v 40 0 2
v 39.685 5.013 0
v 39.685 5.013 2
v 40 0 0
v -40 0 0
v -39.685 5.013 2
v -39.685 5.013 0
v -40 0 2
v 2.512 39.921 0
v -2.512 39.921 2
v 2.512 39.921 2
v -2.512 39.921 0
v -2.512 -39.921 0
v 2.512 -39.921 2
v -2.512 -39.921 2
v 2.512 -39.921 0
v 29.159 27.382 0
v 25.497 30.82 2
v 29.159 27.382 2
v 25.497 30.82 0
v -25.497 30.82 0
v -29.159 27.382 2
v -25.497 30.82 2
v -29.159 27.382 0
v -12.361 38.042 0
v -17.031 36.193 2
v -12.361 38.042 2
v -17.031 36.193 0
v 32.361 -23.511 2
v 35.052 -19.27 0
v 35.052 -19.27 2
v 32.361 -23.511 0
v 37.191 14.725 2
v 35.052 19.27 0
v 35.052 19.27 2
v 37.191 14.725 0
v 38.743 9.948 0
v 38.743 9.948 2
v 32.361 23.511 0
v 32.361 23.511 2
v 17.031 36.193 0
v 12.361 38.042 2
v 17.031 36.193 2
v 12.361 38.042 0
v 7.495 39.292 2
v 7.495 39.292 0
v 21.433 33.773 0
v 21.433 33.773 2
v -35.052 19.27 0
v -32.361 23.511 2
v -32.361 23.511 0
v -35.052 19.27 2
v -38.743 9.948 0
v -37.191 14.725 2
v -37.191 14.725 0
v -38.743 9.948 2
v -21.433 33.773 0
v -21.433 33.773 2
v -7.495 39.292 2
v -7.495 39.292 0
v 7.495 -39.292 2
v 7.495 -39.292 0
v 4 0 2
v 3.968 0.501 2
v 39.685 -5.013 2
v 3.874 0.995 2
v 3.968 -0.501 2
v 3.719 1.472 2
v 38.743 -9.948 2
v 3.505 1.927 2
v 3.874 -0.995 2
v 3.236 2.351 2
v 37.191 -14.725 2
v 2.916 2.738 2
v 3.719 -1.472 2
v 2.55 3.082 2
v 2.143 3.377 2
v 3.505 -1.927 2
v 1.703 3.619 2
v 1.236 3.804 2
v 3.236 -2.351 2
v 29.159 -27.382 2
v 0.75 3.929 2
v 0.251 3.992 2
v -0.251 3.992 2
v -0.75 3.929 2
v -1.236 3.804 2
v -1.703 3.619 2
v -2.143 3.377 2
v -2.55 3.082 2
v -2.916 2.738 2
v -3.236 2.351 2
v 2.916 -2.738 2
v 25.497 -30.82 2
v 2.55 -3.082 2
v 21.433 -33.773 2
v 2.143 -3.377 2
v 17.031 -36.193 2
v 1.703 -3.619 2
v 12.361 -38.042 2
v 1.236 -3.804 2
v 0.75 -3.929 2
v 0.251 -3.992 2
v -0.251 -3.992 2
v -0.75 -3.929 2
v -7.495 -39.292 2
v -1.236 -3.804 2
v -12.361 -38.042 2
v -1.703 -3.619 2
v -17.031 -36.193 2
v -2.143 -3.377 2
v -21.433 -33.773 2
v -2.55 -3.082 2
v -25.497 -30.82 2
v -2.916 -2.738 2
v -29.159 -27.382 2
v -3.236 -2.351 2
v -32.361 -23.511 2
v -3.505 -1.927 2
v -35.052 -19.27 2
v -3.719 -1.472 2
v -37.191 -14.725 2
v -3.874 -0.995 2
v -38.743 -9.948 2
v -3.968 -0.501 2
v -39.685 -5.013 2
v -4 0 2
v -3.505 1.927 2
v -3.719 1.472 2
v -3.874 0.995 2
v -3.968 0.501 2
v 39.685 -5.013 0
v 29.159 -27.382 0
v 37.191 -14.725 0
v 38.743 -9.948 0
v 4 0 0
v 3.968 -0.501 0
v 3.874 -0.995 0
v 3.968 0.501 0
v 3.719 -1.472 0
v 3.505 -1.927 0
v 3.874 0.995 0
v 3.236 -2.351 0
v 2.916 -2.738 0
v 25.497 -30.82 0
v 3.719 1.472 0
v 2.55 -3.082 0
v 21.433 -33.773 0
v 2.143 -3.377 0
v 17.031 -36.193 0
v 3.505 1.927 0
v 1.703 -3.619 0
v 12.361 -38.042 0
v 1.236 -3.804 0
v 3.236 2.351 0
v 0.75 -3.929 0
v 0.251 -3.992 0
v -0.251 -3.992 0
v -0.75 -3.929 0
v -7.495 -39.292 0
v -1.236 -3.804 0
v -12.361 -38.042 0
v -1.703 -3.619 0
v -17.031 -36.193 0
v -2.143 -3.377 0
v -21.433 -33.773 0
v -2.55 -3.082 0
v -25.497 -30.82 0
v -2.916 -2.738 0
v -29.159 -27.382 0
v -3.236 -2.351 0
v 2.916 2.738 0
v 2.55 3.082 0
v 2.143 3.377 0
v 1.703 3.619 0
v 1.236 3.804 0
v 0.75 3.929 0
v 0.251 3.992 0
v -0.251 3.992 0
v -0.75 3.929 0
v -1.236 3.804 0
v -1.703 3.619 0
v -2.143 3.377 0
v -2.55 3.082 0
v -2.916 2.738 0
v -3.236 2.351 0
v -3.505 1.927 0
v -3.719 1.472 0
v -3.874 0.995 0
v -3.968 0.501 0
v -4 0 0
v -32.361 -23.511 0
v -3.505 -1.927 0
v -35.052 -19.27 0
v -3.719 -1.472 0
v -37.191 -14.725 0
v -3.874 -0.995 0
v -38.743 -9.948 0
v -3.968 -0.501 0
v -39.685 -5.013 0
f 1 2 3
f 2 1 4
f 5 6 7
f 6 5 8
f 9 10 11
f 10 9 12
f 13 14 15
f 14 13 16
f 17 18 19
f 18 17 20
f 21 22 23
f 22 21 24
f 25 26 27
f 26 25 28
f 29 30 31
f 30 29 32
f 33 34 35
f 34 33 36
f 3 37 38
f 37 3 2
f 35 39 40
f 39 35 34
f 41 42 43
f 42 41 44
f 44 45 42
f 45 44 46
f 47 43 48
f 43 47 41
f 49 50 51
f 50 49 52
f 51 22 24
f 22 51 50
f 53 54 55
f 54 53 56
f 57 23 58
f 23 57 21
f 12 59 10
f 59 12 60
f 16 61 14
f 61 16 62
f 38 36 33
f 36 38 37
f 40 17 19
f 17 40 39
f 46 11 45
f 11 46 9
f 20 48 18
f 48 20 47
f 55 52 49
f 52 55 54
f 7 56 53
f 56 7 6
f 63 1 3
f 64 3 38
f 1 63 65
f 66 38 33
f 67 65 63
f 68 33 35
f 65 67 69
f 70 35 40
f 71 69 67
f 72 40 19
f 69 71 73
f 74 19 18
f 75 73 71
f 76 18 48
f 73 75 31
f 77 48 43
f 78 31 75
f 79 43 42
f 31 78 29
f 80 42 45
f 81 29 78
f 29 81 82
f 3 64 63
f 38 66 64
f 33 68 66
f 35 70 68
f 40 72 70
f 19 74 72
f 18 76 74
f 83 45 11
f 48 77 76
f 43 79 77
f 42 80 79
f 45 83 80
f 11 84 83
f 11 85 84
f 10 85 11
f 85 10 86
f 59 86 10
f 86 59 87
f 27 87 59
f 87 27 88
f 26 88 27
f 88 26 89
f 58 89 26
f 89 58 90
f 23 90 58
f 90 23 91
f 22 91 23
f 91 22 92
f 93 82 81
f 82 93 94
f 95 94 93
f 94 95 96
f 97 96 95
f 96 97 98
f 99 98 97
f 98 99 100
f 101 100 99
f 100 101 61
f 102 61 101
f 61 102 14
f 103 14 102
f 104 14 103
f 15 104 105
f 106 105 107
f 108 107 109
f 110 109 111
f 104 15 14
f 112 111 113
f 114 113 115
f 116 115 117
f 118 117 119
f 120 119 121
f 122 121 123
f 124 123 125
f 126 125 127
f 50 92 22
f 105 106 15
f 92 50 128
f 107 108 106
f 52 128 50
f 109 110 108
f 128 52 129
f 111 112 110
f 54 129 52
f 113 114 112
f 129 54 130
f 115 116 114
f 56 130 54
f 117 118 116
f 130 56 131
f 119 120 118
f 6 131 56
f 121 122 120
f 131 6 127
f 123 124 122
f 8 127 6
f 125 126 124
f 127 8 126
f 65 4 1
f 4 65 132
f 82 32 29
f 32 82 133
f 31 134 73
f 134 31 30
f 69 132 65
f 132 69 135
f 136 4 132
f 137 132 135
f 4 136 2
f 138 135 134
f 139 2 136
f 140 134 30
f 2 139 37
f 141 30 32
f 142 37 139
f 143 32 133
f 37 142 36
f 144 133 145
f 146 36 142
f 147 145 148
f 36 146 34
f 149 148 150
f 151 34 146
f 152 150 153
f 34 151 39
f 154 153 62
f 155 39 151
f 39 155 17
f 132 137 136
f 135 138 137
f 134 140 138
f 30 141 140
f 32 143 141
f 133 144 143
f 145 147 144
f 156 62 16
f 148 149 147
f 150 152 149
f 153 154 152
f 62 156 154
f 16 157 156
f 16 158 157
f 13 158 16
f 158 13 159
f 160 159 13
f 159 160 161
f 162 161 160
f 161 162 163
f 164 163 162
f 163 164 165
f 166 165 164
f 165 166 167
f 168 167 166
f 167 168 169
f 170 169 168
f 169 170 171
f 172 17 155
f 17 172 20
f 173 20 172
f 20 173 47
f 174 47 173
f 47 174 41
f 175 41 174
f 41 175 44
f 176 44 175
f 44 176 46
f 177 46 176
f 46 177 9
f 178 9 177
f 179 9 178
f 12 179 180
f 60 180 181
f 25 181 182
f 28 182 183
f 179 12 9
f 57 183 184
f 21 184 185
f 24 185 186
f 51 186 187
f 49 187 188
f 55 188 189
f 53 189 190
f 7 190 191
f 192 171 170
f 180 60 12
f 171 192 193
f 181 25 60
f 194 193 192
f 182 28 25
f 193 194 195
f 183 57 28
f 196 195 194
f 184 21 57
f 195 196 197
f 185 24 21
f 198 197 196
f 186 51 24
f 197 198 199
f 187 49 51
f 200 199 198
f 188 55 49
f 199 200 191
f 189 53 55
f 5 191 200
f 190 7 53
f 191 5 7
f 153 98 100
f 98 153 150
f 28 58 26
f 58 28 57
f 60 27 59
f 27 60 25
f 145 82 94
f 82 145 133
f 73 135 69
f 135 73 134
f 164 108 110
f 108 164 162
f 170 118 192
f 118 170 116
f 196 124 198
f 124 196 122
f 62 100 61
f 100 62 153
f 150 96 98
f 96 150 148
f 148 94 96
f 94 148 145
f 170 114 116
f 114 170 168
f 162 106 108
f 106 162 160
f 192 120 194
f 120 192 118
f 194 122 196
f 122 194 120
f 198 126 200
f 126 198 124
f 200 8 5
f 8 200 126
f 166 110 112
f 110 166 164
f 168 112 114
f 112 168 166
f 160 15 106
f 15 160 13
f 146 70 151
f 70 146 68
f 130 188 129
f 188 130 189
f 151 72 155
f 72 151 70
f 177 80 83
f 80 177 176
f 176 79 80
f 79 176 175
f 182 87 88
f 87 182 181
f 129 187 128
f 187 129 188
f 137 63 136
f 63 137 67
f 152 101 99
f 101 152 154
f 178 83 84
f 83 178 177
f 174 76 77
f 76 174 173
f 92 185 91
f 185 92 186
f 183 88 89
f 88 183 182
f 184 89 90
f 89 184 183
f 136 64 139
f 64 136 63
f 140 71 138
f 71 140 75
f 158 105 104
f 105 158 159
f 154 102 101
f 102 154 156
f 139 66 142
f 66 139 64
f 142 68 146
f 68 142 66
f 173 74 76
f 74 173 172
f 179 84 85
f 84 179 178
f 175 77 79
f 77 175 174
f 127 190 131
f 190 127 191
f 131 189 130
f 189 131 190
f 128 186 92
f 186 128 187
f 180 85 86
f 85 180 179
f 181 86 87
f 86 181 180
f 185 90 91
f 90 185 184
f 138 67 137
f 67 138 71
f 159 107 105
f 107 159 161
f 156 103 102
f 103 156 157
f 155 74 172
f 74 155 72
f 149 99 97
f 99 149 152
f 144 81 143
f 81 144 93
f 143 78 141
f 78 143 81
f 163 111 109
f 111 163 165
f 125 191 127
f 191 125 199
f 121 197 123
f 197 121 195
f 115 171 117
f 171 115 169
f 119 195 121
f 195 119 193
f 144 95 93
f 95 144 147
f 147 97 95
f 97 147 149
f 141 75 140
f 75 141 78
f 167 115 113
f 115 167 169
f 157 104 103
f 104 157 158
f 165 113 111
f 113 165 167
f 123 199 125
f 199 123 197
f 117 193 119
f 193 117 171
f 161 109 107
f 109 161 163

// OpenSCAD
$fn=50;

difference() {
    cylinder(2,80/2,80/2);
    cylinder(2,8/2,8/2);
}
